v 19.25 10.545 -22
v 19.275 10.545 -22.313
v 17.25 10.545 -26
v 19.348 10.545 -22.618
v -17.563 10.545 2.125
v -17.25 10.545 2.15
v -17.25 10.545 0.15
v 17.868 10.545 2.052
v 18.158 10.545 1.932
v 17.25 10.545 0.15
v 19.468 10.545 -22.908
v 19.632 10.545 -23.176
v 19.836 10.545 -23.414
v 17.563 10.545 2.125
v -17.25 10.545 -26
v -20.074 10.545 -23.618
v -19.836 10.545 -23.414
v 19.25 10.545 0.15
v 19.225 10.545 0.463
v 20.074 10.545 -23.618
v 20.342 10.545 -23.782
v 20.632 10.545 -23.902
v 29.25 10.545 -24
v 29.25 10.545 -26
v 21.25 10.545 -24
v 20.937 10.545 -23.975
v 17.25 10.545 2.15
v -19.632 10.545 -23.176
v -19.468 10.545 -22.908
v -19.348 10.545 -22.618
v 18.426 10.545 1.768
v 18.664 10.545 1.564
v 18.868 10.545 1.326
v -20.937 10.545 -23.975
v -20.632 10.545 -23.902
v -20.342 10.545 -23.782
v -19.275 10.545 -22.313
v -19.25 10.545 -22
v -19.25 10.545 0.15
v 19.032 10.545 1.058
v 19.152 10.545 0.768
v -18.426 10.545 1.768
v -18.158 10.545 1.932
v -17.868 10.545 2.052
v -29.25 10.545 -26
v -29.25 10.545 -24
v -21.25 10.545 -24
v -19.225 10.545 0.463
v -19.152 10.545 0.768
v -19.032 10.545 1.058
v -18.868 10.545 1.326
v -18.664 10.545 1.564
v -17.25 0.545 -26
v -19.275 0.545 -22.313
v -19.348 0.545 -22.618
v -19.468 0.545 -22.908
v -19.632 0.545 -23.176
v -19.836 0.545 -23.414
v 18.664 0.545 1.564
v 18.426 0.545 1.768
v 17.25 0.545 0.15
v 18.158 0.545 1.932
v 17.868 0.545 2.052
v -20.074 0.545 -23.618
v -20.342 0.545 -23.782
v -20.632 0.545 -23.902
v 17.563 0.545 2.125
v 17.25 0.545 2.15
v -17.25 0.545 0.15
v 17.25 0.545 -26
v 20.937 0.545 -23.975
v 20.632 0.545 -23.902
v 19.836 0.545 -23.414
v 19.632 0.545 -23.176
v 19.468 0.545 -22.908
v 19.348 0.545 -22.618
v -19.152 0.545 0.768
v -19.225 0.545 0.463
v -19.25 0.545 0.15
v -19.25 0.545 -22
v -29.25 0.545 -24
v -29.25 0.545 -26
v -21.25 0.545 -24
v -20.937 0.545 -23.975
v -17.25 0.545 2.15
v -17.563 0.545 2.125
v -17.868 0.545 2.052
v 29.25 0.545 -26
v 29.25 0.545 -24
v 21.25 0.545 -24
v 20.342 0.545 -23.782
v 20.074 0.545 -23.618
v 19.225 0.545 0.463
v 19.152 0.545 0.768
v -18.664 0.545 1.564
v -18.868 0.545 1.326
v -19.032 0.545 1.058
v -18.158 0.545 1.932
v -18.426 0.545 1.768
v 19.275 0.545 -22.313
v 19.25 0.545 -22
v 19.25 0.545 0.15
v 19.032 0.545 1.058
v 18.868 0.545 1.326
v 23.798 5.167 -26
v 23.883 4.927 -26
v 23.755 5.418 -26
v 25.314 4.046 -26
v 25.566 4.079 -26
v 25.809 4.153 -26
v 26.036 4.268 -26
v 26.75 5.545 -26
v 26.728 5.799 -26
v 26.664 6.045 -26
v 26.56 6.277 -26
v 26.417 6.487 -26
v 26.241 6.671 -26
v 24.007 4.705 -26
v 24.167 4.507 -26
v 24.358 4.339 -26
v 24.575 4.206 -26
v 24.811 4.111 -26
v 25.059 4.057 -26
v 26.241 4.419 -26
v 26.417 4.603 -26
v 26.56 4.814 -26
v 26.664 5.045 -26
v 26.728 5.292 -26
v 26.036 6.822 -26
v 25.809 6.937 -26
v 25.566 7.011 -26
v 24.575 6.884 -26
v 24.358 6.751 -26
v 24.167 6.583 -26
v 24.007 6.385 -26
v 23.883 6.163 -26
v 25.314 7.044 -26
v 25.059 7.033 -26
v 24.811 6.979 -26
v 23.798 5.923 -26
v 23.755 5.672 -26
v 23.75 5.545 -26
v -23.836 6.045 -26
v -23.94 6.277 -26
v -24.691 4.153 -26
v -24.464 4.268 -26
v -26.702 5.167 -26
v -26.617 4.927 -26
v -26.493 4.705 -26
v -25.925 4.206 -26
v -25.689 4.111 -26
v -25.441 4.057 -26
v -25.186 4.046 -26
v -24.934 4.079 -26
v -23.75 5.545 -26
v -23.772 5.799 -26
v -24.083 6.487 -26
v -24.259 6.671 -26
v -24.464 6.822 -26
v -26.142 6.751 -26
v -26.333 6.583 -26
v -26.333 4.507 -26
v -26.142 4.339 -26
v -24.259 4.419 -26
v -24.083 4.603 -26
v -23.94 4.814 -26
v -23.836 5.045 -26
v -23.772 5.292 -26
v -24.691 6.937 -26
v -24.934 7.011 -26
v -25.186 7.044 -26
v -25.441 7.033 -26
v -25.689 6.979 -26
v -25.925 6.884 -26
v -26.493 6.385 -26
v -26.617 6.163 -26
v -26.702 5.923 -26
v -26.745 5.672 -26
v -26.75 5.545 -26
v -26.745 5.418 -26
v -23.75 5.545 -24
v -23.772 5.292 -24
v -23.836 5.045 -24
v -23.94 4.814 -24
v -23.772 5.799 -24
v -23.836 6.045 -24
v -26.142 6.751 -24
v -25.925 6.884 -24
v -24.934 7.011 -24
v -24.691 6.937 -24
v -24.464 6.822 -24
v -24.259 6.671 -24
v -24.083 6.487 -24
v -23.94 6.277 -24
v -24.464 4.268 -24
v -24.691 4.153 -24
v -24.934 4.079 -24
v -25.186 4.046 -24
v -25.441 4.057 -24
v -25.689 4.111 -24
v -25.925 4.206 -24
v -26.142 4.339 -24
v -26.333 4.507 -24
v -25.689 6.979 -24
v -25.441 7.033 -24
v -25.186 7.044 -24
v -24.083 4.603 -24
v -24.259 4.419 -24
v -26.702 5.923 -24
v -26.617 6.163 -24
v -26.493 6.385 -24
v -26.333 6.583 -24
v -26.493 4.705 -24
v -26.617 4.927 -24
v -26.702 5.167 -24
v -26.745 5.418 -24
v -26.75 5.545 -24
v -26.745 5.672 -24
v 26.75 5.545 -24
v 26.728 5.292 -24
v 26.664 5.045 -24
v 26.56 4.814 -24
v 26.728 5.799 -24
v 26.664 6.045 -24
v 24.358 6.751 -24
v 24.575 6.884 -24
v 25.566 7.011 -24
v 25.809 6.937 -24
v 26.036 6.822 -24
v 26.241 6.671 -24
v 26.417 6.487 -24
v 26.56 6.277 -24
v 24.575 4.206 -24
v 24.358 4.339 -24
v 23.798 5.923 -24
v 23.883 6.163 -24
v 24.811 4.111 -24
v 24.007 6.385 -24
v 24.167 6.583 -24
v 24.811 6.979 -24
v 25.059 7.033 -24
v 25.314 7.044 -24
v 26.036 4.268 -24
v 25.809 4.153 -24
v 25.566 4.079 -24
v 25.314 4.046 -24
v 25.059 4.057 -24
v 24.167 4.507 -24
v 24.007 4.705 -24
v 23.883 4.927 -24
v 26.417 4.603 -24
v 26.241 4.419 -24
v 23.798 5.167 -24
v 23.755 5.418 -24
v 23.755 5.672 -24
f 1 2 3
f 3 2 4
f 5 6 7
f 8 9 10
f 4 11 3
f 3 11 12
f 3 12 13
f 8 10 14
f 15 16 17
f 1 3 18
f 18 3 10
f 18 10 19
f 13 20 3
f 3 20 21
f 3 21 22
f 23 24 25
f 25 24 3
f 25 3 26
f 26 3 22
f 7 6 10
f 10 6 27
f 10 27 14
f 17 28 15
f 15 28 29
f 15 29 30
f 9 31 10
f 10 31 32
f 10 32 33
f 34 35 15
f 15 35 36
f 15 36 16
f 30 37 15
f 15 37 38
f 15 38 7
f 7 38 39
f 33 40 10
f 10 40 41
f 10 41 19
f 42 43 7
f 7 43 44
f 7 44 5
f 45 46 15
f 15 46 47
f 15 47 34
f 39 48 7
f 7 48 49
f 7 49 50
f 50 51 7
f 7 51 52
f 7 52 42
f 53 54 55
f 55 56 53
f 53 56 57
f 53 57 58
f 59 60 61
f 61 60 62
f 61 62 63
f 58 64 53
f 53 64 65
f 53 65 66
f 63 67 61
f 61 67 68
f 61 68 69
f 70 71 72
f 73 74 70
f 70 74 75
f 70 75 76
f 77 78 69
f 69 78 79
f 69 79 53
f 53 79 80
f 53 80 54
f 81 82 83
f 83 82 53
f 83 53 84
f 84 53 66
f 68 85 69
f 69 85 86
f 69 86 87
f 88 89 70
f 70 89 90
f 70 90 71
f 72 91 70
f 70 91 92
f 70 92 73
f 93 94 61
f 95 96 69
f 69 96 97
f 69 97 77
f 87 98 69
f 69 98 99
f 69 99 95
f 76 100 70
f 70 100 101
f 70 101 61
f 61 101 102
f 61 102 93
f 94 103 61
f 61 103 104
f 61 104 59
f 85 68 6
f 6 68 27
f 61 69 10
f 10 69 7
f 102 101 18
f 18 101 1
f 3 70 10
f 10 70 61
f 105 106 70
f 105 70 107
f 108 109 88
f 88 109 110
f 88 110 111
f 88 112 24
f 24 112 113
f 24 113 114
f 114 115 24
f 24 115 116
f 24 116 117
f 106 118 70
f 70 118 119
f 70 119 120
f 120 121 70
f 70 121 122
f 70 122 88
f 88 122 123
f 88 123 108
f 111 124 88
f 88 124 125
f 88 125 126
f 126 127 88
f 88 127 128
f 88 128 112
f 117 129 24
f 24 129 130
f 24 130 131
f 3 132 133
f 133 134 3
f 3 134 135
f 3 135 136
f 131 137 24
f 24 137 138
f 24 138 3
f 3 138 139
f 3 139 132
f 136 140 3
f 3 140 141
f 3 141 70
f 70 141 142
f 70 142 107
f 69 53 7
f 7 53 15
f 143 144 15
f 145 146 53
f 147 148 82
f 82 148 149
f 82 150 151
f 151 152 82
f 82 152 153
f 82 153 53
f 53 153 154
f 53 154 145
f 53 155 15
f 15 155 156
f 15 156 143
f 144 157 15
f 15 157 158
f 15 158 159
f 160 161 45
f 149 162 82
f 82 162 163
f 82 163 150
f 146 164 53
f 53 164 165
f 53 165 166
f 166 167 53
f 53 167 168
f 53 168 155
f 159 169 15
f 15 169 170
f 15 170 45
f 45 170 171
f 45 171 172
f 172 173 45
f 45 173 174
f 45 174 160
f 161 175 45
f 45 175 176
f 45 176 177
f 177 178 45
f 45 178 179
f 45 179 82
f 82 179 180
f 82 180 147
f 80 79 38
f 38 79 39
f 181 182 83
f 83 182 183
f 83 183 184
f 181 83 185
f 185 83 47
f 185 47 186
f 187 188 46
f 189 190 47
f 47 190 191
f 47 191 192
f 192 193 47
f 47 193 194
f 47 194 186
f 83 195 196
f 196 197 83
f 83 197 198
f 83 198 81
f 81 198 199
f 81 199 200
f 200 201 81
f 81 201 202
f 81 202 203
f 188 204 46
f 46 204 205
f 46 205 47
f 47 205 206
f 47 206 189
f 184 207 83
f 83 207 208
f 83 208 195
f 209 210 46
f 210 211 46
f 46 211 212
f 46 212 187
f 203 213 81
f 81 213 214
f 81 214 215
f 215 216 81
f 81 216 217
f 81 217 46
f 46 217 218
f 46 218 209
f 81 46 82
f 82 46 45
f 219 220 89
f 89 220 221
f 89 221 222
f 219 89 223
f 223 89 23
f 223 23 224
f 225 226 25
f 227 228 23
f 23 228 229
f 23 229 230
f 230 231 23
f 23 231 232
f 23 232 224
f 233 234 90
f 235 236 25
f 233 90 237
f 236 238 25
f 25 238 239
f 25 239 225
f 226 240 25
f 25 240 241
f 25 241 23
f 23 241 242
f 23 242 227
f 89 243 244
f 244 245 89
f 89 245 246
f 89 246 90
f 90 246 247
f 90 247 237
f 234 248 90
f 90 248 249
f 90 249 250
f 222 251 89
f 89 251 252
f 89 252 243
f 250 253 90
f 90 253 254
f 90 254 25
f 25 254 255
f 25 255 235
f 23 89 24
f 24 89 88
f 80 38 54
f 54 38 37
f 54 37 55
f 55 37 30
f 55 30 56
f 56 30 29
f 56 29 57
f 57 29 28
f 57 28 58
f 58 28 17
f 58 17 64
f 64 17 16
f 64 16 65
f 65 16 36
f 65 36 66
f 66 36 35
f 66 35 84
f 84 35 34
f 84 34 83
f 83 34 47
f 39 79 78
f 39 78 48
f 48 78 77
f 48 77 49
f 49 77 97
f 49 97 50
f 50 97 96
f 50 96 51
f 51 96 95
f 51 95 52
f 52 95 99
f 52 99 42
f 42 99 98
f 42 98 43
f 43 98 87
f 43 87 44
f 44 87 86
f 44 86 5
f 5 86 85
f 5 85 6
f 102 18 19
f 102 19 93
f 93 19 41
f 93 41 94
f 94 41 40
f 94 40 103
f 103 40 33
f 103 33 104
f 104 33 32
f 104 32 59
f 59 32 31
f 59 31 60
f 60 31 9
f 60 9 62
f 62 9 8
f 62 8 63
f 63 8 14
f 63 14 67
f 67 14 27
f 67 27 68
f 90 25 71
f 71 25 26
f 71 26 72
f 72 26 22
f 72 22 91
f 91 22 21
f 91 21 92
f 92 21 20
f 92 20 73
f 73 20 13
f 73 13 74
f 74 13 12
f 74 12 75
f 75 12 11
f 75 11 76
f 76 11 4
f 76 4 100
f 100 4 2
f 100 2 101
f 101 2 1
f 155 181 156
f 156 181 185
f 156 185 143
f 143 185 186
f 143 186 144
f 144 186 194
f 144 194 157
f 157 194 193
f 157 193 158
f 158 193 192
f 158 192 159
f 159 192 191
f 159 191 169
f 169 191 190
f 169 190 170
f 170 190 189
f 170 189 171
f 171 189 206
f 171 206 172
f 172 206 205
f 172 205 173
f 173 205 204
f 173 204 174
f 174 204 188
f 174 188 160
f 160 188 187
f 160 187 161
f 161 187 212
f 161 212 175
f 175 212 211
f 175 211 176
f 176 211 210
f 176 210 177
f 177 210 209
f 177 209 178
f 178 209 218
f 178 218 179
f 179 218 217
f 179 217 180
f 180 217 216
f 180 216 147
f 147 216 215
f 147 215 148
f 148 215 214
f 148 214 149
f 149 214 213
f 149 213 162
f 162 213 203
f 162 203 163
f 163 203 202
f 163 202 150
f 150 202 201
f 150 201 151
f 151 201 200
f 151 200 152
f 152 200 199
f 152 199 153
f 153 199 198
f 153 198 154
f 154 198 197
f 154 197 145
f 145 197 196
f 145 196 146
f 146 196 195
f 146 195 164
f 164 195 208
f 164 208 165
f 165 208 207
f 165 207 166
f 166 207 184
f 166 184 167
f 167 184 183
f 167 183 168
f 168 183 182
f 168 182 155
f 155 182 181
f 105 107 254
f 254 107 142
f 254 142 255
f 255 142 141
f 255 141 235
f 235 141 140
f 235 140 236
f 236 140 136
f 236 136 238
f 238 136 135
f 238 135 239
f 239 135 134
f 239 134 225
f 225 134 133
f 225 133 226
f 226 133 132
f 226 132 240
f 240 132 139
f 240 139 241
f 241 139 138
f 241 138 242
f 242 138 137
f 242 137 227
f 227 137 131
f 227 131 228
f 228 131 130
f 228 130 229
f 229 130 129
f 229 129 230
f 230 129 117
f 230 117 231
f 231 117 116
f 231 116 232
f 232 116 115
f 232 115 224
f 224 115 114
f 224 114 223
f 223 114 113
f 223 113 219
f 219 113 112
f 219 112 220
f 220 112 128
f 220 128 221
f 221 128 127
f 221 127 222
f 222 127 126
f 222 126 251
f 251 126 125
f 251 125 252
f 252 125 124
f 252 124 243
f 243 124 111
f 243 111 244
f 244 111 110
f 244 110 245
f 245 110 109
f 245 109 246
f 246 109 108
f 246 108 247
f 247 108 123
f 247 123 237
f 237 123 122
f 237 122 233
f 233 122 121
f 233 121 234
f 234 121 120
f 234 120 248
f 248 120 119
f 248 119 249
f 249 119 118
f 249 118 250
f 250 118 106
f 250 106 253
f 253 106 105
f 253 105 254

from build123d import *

# Parameters (mm, degrees)
BOSS_EXTRUDE1_START = 0.15
SKETCH1_W           = 30
SKETCH1_H           = 10
SKETCH1_W_2         = 2.25
BOSS_EXTRUDE1_DEPTH = 2
SKETCH2_W           = 2
SKETCH2_H           = 10
BOSS_EXTRUDE2_DEPTH = 28.15
SKETCH3_W           = 2
SKETCH3_H           = 10
BOSS_EXTRUDE3_DEPTH = 10
FILLET1_R           = 2
CUT_EXTRUDE1_START  = -2
SKETCH4_R           = 1.5
CUT_EXTRUDE1_DEPTH  = 29.15


with BuildPart() as part:
    # Sketch1 → Boss-Extrude1 (new body)
    with BuildSketch(Plane.XY.offset(BOSS_EXTRUDE1_START)):
        with Locations((0, 5.545087163)):
            Rectangle(SKETCH1_W, SKETCH1_H)
        with Locations((16.125, 5.545087163)):
            Rectangle(SKETCH1_W_2, SKETCH1_H)
        with Locations((-16.125, 5.545087163)):
            Rectangle(SKETCH1_W_2, SKETCH1_H)
    extrude(amount=BOSS_EXTRUDE1_DEPTH)

    # Sketch2 → Boss-Extrude2 (add)
    with BuildSketch(Plane.XY.offset(2.15)):
        with Locations((18.25, 5.545087163)):
            Rectangle(SKETCH2_W, SKETCH2_H)
        with Locations((-18.25, 5.545087163)):
            Rectangle(SKETCH2_W, SKETCH2_H)
    extrude(amount=-BOSS_EXTRUDE2_DEPTH)

    # Sketch3 → Boss-Extrude3 (add)
    with BuildSketch(Plane.ZY.offset(19.25)):
        with Locations((-25, 5.545087163)):
            Rectangle(SKETCH3_W, SKETCH3_H)
    boss_extrude3 = extrude(amount=BOSS_EXTRUDE3_DEPTH)

    # Mirror1: Boss-Extrude3 across plane
    add(boss_extrude3.mirror(Plane(origin=(0, 0, 0), x_dir=(0, 0, 1), z_dir=(1, 0, 0))))

    # Fillet1
    fillet1_edges = [part.edges().sort_by_distance(p)[0] for p in [
        (19.25, 5.545087163, 2.15),
        (-19.25, 5.545087163, 2.15),
        (-19.25, 5.545087163, -24),
        (19.25, 5.545087163, -24),
    ]]
    fillet(fillet1_edges, radius=FILLET1_R)

    # Sketch4 → Cut-Extrude1 (cut)
    with BuildSketch(Plane.XY.offset(-24).offset(CUT_EXTRUDE1_START)):
        with Locations((-25.25, 5.545087163)):
            Circle(SKETCH4_R)
    cut_extrude1 = extrude(amount=CUT_EXTRUDE1_DEPTH, mode=Mode.SUBTRACT)

    # Mirror2: Cut-Extrude1 across plane
    add(cut_extrude1.mirror(Plane(origin=(0, 0, 0), x_dir=(0, 0, 1), z_dir=(1, 0, 0))), mode=Mode.SUBTRACT)


solid = part.part
